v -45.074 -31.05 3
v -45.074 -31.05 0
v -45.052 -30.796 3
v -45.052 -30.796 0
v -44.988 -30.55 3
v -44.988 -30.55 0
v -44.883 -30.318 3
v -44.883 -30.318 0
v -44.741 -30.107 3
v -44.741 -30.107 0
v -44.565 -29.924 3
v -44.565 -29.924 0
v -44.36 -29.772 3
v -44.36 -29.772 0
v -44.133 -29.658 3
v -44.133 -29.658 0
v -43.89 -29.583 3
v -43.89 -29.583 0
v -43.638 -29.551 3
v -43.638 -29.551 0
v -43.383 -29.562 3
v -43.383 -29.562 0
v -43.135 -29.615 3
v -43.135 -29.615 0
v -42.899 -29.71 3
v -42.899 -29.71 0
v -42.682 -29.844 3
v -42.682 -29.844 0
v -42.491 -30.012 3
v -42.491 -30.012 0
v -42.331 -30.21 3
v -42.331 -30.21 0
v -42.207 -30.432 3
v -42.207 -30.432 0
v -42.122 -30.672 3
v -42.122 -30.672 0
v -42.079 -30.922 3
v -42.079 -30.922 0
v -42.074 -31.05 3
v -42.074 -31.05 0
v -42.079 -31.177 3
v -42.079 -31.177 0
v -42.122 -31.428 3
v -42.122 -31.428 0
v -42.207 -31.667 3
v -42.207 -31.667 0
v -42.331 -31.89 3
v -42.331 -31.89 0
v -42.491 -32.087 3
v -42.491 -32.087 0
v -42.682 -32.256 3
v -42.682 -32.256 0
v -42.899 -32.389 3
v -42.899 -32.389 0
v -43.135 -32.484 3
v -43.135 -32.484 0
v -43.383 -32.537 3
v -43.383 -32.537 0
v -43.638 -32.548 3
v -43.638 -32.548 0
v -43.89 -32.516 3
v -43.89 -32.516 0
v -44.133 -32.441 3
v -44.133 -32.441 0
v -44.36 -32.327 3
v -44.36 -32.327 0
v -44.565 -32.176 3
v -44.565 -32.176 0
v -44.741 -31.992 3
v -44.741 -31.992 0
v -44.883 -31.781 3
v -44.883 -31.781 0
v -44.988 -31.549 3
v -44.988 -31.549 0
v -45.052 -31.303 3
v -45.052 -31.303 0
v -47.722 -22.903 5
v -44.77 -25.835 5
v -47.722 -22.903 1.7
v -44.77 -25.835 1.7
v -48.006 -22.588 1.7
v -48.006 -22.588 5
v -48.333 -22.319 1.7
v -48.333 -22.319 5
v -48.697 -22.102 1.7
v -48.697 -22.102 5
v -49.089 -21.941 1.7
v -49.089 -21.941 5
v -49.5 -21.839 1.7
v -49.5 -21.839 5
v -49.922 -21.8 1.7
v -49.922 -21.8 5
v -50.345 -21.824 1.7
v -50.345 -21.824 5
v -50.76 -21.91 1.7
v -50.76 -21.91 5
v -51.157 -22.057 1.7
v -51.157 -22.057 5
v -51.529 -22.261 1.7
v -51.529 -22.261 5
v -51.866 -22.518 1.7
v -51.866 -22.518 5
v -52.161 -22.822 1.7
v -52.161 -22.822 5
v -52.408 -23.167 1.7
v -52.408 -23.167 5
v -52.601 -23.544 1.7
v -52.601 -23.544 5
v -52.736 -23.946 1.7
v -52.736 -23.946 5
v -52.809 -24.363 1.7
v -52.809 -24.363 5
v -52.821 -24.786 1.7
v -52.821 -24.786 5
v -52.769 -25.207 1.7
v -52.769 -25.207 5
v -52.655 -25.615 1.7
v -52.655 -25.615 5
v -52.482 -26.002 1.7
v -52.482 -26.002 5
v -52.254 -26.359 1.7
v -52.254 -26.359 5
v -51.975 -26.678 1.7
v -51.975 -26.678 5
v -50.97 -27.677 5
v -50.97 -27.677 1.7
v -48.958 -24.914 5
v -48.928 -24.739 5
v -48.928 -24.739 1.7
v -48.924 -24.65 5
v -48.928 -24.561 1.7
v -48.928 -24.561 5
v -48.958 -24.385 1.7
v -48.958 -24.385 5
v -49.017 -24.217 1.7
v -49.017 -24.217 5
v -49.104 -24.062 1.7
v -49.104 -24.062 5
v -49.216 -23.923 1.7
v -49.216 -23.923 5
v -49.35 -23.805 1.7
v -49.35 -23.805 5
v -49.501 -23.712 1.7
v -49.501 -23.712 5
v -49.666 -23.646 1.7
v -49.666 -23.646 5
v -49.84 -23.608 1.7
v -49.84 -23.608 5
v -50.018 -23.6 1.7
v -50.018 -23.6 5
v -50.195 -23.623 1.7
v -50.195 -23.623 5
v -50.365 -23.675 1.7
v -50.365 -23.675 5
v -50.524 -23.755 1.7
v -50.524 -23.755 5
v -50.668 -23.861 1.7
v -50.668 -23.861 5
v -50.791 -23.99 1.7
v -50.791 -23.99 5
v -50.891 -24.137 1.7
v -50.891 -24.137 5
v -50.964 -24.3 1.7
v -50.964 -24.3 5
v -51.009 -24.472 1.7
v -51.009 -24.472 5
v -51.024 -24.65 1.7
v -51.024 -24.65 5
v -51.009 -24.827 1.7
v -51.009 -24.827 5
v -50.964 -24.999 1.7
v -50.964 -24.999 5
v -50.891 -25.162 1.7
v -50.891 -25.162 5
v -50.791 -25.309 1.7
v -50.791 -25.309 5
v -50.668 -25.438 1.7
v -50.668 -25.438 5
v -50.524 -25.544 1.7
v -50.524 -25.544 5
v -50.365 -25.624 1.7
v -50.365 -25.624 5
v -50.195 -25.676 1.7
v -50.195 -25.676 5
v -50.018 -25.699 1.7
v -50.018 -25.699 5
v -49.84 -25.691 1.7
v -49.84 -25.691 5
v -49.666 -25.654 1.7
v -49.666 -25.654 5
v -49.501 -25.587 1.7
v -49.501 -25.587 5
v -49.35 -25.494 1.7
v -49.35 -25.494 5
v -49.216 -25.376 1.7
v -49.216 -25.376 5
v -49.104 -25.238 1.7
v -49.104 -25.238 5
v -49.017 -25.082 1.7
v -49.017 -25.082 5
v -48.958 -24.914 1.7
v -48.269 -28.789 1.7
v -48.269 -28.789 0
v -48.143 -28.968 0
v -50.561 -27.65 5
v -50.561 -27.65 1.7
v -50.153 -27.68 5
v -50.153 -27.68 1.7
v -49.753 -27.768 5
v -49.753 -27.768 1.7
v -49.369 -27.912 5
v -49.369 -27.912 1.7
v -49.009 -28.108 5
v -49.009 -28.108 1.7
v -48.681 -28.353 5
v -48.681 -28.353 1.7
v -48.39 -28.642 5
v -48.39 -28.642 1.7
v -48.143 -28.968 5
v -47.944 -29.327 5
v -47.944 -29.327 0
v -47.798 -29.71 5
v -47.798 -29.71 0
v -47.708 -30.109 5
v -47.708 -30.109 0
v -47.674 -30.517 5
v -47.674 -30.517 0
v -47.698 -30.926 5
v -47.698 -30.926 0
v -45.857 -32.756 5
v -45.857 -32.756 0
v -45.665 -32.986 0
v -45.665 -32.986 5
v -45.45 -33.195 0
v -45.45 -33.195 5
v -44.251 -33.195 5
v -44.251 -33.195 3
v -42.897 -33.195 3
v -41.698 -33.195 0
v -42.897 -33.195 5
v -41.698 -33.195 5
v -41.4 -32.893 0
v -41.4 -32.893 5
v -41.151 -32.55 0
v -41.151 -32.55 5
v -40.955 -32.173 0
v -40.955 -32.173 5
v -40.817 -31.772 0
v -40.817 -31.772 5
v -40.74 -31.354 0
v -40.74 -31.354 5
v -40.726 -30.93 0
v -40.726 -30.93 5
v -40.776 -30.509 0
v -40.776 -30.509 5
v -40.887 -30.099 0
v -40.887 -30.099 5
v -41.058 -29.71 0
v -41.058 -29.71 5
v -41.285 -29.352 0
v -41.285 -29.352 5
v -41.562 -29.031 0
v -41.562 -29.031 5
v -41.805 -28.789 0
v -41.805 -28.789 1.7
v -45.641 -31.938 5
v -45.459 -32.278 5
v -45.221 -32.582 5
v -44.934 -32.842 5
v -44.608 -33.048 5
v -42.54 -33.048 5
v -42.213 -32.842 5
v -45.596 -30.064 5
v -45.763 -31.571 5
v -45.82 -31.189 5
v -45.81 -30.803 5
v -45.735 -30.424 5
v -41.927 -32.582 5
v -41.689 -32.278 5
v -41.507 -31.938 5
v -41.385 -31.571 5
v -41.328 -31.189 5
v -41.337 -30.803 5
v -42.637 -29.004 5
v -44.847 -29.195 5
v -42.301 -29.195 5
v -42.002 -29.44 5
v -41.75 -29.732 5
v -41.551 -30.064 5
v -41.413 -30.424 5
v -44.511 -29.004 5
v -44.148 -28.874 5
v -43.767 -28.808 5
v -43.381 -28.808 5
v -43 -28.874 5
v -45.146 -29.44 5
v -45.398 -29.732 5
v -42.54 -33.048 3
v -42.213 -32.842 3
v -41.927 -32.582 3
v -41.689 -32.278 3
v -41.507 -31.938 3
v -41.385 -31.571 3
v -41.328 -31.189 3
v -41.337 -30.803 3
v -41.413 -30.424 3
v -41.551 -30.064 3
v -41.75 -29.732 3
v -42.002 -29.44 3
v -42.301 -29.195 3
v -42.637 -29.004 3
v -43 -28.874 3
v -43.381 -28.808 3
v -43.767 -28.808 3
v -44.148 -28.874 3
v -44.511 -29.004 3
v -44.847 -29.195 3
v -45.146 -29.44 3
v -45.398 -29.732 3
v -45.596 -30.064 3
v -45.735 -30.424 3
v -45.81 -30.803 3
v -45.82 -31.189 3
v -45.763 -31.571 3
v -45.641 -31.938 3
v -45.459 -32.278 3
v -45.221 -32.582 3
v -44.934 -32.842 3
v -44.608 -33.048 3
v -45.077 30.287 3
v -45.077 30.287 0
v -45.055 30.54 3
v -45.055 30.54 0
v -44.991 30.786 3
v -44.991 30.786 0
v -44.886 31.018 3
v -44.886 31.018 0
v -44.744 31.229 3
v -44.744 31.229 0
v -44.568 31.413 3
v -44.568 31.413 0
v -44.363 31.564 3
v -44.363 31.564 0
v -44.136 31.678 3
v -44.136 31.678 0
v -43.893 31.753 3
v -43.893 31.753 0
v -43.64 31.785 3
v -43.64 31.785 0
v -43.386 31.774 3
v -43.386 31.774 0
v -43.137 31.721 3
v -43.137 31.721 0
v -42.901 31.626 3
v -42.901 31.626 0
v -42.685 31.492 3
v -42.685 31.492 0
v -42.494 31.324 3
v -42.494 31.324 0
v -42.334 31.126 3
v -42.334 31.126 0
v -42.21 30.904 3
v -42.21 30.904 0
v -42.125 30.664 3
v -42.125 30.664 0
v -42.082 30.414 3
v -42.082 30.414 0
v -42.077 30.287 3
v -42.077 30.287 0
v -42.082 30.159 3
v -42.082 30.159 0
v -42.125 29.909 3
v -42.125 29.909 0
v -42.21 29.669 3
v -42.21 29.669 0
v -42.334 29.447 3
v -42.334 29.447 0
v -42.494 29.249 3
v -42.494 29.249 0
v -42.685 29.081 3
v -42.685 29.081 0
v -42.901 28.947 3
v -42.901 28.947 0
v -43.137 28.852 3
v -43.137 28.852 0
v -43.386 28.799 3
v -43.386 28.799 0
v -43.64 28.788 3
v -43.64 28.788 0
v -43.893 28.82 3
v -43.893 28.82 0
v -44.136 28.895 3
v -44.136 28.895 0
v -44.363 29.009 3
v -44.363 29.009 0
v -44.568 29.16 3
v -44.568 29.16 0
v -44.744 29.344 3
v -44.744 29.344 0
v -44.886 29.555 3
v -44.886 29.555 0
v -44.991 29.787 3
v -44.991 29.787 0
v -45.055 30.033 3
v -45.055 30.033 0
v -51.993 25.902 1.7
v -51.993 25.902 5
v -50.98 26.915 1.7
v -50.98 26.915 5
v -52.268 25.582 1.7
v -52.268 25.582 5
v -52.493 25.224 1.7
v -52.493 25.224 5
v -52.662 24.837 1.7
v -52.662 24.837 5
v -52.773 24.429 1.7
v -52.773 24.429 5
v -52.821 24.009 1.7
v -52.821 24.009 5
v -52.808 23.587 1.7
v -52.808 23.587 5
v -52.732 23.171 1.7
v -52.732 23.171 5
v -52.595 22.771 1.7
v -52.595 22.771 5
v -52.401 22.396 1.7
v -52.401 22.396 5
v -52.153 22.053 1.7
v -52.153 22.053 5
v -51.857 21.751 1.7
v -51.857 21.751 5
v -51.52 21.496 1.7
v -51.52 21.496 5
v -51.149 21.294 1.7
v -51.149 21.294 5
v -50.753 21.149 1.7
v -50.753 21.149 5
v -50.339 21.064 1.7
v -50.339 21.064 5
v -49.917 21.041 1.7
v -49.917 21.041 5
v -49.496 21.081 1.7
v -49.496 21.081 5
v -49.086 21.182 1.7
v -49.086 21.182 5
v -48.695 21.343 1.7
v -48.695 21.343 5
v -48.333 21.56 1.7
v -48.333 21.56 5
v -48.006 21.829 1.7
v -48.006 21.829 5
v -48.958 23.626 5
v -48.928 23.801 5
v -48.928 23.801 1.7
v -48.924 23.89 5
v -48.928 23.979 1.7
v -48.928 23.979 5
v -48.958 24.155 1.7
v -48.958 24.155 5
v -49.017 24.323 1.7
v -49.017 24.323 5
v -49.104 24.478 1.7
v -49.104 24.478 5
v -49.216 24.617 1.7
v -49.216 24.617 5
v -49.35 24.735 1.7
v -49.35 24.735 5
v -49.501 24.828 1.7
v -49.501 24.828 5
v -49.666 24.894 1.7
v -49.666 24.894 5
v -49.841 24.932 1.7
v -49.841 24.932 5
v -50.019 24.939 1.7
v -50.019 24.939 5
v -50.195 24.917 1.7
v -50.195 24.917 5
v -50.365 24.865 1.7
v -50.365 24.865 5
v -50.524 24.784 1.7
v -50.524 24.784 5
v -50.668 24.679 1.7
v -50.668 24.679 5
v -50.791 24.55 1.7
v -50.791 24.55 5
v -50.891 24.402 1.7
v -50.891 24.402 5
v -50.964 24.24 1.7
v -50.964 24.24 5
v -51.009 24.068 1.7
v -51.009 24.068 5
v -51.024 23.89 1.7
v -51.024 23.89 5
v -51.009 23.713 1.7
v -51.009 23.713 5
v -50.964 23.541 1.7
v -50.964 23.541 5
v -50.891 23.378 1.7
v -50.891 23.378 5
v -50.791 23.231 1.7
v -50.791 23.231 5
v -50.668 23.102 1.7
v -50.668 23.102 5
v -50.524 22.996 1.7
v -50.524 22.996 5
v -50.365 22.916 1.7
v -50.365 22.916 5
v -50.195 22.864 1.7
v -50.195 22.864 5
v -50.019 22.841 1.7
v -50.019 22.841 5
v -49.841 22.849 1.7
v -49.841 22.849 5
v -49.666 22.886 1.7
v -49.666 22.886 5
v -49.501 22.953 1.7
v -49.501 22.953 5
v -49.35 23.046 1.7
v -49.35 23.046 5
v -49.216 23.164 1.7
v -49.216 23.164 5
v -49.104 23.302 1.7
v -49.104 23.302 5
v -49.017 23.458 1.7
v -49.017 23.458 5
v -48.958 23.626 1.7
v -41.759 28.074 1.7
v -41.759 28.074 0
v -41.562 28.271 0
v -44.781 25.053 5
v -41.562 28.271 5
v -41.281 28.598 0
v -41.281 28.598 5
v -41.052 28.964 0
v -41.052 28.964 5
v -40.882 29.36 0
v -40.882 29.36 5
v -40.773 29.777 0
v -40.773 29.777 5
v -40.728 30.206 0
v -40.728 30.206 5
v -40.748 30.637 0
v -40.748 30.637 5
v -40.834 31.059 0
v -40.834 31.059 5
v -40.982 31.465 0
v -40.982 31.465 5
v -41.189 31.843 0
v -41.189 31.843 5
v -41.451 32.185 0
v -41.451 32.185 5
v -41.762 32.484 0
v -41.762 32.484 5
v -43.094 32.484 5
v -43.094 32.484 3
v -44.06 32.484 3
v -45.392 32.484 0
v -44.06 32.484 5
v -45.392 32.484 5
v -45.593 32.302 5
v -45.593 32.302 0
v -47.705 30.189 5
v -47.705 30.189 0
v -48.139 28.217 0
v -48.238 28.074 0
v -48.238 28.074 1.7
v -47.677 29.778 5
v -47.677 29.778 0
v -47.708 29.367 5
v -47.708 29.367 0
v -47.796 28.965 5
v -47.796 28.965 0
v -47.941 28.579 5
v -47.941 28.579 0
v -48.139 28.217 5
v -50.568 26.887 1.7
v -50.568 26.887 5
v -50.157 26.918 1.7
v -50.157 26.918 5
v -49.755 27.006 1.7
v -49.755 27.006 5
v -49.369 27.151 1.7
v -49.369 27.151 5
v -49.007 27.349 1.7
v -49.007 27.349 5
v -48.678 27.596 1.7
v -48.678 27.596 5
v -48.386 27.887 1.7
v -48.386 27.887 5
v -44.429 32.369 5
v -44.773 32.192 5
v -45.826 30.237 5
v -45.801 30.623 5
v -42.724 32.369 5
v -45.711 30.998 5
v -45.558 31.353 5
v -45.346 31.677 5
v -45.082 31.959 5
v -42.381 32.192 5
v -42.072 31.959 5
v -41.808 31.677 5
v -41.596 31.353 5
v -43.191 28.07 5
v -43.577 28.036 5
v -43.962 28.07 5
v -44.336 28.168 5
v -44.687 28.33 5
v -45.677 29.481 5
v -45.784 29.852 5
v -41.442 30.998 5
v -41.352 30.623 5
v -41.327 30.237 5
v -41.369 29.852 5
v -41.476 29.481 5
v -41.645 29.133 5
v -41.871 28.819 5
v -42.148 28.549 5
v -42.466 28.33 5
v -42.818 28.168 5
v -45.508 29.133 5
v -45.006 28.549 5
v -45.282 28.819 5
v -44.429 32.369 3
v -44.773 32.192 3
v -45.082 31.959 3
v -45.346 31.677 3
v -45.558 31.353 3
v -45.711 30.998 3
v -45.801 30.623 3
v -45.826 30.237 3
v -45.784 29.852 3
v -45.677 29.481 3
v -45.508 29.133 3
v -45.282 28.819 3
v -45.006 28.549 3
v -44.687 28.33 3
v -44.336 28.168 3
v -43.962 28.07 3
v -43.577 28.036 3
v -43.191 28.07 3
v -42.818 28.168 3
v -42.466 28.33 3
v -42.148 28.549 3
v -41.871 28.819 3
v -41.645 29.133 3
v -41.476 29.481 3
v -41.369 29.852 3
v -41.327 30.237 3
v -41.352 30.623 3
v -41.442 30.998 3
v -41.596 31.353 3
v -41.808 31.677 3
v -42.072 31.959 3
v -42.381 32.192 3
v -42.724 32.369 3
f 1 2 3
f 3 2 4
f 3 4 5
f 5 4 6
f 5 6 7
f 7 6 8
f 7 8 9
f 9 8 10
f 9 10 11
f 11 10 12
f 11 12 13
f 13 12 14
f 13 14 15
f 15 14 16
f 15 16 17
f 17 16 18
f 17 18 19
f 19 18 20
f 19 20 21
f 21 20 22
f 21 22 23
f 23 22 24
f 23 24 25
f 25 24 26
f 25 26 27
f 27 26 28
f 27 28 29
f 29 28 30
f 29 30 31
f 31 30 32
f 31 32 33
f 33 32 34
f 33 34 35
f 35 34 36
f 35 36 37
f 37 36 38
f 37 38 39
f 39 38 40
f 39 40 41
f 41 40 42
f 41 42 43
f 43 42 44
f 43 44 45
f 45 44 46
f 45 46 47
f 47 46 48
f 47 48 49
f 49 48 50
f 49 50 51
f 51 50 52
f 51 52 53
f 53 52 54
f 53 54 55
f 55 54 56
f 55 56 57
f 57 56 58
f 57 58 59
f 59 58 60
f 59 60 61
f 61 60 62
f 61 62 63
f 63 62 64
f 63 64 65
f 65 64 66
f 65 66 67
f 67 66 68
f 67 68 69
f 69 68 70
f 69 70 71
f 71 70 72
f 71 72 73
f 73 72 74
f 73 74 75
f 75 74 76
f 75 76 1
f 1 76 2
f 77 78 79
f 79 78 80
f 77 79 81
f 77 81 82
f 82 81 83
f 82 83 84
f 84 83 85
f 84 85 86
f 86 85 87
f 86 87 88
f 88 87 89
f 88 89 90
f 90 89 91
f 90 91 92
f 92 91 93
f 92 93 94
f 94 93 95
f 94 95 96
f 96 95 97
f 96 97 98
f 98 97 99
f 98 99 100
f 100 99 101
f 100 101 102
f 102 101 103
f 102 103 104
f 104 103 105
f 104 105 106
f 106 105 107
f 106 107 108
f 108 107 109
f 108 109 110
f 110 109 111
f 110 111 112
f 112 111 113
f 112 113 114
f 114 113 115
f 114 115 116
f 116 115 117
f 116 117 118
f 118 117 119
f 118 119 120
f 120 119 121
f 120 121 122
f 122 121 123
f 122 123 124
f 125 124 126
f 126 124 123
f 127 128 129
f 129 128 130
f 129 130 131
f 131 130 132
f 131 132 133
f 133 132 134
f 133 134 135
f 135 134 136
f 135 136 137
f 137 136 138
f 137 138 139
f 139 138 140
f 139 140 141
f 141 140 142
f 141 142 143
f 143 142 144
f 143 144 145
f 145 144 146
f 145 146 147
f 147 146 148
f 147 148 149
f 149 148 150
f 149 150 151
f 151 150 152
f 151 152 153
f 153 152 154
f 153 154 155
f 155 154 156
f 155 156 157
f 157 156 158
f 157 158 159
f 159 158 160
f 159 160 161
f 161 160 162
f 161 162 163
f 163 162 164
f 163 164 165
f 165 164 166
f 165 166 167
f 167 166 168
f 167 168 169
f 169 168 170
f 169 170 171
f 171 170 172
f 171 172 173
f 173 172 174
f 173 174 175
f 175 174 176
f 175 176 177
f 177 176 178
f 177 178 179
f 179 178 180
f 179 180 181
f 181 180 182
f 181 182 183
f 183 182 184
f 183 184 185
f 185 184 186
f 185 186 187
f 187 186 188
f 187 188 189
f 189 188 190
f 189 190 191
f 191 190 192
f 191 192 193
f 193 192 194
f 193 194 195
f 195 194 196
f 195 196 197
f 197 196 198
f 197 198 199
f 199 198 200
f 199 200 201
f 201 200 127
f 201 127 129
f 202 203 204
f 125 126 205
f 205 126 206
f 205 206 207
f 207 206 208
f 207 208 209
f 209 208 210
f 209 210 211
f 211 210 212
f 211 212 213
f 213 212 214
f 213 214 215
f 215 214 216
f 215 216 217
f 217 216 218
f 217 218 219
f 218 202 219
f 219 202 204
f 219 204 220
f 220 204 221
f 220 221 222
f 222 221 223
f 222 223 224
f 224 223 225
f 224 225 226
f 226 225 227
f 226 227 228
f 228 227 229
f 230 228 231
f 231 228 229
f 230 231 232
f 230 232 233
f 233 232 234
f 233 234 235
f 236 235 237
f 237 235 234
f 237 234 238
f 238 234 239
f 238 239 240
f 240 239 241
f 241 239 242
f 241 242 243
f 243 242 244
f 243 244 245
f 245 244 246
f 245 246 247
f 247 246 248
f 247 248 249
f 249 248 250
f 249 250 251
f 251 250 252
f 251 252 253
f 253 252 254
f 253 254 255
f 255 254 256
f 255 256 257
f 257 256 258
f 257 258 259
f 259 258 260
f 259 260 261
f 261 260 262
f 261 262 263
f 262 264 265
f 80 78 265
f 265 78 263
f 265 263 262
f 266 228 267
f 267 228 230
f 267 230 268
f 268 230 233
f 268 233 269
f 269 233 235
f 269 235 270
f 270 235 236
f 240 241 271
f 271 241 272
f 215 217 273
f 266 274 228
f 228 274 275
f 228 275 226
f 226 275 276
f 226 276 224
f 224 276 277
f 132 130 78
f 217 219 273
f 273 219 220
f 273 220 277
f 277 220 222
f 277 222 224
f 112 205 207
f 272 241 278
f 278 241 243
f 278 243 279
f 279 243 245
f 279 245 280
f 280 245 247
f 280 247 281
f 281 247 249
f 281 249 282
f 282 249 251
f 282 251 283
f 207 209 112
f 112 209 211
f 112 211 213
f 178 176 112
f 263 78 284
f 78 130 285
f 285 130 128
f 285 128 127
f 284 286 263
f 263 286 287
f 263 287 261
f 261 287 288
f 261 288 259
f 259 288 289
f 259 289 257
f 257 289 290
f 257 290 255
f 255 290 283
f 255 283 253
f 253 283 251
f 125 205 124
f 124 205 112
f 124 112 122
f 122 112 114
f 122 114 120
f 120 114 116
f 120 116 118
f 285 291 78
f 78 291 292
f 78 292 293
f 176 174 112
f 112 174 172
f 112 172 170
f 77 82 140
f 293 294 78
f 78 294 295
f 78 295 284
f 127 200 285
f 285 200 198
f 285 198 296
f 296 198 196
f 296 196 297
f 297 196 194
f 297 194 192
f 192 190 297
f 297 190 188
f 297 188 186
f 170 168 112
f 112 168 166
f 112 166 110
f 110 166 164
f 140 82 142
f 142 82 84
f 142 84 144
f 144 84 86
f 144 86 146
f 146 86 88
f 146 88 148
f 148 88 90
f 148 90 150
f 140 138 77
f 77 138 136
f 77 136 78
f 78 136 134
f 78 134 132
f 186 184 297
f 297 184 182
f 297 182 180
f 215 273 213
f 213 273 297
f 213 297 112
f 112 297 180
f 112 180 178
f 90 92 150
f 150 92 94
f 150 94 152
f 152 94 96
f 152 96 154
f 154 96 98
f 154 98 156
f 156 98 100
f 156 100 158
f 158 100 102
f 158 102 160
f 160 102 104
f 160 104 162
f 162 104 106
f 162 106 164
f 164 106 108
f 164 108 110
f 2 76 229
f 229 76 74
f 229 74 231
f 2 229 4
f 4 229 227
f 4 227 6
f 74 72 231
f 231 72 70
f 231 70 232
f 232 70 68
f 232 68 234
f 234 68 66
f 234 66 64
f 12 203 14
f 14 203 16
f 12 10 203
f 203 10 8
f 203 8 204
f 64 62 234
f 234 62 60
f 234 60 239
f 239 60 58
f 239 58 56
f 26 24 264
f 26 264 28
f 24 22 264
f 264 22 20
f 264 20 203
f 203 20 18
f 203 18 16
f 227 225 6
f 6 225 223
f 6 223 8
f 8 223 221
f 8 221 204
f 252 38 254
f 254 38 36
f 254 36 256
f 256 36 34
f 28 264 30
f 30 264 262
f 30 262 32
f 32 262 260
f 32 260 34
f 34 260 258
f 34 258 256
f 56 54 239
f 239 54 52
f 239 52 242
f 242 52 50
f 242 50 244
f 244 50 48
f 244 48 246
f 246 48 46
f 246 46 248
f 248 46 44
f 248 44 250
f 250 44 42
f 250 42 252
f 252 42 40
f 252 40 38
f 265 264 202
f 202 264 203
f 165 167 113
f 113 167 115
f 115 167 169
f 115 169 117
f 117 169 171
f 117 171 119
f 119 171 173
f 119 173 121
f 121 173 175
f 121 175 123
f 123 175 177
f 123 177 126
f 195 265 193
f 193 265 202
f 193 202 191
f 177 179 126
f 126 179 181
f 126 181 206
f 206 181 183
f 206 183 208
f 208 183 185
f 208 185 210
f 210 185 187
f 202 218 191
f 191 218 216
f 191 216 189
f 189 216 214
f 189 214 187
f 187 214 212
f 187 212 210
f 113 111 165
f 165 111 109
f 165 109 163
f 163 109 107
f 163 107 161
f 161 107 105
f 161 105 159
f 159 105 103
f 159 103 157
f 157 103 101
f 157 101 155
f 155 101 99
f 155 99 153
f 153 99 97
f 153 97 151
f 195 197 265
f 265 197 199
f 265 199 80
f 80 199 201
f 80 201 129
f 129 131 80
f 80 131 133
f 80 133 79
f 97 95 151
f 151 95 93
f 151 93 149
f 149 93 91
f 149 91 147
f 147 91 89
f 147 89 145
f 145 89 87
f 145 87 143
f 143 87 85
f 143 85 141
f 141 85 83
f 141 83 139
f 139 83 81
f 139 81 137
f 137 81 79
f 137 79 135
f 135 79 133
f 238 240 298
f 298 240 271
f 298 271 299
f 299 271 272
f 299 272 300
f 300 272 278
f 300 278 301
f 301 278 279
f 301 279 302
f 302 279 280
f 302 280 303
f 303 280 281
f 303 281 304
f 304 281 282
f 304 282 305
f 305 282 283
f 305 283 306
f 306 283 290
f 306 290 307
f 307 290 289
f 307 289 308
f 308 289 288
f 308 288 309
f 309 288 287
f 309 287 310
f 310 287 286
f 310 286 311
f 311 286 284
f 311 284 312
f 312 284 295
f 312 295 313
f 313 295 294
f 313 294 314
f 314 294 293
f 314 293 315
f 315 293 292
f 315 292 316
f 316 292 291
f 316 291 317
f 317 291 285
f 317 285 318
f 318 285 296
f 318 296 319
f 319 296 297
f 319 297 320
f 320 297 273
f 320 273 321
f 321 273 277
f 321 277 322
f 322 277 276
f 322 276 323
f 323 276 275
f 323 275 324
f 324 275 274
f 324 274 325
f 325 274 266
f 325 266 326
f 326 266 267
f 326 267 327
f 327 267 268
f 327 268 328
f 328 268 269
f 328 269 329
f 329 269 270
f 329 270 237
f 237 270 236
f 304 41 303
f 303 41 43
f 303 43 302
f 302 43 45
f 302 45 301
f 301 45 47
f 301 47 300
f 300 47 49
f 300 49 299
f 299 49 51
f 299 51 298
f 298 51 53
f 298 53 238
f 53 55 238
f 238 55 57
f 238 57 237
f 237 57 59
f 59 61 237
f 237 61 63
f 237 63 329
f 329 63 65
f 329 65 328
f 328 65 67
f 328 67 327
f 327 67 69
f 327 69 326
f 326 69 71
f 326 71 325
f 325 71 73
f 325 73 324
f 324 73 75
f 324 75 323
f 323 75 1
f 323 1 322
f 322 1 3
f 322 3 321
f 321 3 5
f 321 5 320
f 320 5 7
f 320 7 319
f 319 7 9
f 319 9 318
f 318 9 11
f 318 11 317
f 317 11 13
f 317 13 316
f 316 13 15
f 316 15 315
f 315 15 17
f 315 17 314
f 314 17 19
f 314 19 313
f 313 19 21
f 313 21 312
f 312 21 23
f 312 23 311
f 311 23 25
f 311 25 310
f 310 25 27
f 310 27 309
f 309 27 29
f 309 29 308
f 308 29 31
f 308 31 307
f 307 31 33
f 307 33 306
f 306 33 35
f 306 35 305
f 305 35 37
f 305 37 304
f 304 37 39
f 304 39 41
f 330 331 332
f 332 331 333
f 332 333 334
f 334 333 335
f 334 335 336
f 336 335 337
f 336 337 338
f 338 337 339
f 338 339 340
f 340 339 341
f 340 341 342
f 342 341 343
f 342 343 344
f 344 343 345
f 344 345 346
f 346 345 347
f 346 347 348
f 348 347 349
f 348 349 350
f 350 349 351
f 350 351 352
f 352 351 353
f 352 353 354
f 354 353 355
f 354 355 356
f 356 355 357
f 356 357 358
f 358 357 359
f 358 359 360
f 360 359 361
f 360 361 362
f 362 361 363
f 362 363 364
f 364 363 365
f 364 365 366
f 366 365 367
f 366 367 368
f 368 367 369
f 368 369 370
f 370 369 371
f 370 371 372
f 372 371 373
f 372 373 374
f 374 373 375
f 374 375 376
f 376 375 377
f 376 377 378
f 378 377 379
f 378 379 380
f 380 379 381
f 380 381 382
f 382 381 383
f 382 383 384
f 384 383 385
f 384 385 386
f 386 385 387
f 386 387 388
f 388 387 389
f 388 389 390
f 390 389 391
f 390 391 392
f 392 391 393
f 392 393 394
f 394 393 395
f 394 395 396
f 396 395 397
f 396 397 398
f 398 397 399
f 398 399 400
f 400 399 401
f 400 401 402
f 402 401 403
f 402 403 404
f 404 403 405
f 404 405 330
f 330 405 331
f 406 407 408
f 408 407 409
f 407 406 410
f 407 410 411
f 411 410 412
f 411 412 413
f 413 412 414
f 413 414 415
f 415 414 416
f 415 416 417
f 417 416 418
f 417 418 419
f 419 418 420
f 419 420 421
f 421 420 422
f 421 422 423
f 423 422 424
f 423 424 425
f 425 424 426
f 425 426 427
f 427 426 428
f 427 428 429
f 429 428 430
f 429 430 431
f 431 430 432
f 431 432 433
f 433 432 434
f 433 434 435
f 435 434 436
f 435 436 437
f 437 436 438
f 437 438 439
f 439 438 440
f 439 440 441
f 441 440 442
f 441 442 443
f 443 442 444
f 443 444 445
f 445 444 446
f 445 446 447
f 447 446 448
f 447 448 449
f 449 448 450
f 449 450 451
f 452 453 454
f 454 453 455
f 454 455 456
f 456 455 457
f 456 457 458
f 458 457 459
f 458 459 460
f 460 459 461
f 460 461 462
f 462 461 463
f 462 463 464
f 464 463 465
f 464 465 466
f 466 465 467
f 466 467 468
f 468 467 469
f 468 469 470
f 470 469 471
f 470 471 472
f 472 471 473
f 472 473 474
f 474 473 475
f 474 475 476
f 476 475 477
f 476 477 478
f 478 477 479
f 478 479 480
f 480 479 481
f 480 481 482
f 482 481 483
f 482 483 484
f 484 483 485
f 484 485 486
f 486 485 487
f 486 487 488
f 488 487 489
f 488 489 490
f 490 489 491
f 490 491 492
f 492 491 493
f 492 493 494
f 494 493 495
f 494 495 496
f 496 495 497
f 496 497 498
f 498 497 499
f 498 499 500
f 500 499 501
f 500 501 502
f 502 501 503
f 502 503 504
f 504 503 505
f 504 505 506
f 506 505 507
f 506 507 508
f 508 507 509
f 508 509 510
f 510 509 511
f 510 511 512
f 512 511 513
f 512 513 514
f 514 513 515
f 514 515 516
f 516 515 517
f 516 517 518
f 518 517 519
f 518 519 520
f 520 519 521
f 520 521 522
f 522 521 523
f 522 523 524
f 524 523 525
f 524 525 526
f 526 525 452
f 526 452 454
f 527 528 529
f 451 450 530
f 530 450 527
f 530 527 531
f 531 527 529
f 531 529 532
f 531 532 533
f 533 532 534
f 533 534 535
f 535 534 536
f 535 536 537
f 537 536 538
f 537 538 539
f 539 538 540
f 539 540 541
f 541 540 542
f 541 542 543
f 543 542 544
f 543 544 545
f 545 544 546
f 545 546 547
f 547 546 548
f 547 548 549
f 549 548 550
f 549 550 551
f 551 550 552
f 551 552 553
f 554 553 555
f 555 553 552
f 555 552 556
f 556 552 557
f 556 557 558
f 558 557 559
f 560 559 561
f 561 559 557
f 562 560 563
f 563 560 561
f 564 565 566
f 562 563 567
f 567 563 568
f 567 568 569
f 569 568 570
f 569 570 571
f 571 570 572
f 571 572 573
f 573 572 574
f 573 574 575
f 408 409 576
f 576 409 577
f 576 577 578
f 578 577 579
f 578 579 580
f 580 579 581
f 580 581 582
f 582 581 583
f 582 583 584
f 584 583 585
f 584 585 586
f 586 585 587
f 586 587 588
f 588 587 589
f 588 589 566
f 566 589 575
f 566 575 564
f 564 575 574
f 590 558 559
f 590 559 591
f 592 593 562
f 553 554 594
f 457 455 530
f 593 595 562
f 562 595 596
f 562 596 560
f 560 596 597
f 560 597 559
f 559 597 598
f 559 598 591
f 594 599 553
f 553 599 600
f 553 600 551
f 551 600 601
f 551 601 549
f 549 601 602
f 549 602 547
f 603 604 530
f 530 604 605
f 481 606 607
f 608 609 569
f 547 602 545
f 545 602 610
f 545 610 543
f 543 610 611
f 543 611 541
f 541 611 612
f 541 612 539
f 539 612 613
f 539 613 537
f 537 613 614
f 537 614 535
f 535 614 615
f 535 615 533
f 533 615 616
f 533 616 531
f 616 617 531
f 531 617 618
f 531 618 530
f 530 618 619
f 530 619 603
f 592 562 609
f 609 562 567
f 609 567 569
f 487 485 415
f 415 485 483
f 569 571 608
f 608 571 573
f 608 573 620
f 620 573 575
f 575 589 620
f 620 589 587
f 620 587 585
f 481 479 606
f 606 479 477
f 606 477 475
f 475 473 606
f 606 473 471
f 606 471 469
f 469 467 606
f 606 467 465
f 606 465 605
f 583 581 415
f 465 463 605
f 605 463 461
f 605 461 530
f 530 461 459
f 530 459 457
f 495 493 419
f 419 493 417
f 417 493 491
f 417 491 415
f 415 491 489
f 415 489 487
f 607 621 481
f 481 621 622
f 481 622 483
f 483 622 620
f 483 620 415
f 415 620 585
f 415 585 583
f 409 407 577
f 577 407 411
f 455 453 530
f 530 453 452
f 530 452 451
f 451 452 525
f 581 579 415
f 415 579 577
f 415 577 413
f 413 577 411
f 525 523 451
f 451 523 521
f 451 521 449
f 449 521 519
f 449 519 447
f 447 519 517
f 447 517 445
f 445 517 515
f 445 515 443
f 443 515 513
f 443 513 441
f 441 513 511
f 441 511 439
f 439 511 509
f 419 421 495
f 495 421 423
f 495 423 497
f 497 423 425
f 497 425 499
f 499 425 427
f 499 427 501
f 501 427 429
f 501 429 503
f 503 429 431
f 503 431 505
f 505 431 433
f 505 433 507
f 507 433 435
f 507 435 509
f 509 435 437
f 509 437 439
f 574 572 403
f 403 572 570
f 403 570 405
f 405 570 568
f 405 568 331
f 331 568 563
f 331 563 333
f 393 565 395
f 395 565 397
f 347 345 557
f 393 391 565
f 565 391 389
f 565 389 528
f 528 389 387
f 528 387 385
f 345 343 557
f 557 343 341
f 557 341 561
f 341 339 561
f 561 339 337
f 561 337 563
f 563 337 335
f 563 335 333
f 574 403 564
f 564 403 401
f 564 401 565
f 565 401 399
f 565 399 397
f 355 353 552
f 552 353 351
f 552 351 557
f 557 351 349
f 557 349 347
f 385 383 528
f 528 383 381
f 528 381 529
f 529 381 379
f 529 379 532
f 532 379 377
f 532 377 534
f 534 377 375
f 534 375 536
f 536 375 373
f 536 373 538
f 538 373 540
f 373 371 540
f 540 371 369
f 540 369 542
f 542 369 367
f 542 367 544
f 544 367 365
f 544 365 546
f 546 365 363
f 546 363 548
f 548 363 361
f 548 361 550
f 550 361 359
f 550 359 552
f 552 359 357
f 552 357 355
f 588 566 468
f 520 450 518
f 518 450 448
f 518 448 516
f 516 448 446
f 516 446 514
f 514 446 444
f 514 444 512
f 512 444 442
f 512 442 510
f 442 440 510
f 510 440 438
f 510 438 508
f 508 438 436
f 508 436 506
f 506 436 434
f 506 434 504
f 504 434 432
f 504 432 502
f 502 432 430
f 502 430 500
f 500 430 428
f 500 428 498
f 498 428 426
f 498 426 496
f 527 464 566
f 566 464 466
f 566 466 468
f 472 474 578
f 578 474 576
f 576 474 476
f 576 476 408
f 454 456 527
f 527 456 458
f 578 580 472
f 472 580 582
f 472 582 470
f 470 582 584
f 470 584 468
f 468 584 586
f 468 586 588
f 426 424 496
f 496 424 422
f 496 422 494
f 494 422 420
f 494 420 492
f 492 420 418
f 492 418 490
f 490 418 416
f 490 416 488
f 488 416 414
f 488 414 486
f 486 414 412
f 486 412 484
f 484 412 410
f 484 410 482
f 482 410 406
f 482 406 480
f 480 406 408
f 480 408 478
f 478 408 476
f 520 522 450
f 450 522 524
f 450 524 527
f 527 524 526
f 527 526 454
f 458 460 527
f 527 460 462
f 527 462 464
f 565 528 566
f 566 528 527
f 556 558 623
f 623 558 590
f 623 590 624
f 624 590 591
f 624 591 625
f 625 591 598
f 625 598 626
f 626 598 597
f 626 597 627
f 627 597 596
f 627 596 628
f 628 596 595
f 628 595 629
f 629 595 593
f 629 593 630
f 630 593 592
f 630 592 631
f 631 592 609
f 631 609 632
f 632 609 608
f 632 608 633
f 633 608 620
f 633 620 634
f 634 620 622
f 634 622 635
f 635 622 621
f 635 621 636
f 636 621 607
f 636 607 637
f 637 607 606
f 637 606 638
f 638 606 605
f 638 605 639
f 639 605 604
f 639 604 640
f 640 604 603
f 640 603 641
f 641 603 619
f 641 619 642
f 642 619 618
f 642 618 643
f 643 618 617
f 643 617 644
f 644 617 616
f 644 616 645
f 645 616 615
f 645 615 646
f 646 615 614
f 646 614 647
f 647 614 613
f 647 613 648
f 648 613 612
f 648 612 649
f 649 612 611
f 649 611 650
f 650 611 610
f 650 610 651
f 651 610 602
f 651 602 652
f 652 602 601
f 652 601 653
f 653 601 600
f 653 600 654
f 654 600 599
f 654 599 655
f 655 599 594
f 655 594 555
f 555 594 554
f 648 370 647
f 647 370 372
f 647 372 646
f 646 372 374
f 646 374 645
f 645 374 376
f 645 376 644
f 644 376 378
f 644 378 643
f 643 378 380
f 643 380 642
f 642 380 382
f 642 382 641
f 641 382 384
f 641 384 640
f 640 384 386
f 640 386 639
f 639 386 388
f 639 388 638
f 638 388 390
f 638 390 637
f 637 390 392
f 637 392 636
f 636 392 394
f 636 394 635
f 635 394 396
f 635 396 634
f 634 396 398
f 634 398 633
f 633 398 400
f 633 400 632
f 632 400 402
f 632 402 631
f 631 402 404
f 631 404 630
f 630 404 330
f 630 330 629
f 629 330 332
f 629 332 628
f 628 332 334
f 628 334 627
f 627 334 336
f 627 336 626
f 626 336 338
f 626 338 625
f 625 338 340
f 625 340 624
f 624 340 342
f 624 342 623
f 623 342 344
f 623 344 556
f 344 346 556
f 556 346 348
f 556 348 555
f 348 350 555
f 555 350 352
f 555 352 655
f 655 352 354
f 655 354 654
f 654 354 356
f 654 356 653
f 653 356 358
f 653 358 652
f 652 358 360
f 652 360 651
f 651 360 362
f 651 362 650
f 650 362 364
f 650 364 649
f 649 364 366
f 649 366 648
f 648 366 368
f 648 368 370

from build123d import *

# Parameters (mm, degrees)
SKIZZE8_R                       = 1.5
SKIZZE8_R_2                     = 1.05
AUFSATZ_LINEAR_AUSTRAGEN2_DEPTH = 5
SKIZZE10_W                      = 20.065556473
SKIZZE10_H                      = 56.862731781
SCHNITT_LINEAR_AUSTRAGEN6_DEPTH = 1.7
SKIZZE11_R                      = 2.25
SCHNITT_LINEAR_AUSTRAGEN7_DEPTH = 2


with BuildPart() as part:
    # Skizze8 → Aufsatz-Linear austragen2 (new body)
    # profile 1 of 4: a face of its own
    with BuildSketch(Plane.XY):
        with BuildLine():
            ThreePointArc((-47.123867598, -24.649552882), (-48.874309678, -27.278901163), (-51.975427164, -26.678409532))
            Line((-51.975427164, -26.678409532), (-50.970278136, -27.676773969))
            ThreePointArc((-50.970278136, -27.676773969), (-48.530213724, -28.49201094), (-47.698469834, -30.926498104))
            Line((-47.698469834, -30.926498104), (-45.856507051, -32.756027941))
            ThreePointArc((-45.856507051, -32.756027941), (-45.664613255, -32.986375692), (-45.449583337, -33.195290626))
            Line((-45.449583337, -33.195290626), (-41.698151858, -33.195290626))
            ThreePointArc((-41.698151858, -33.195290626), (-40.725381252, -31.142426674), (-41.562362318, -29.03055647))
            Line((-41.562362318, -29.03055647), (-44.770198206, -25.834622697))
            Line((-44.770198206, -25.834622697), (-47.721753605, -22.902989811))
            ThreePointArc((-47.721753605, -22.902989811), (-47.27747882, -23.72652116), (-47.123867598, -24.649552882))
        make_face()
        with Locations((-43.573867598, -31.049552882)):
            Circle(SKIZZE8_R, mode=Mode.SUBTRACT)
    # profile 2 of 4: a face of its own
    with BuildSketch(Plane.XY):
        with BuildLine():
            ThreePointArc((-52.823867598, -24.649552882), (-52.603215878, -25.749110802), (-51.975427164, -26.678409532))
            ThreePointArc((-51.975427164, -26.678409532), (-48.874309678, -27.278901163), (-47.123867598, -24.649552882))
            ThreePointArc((-47.123867598, -24.649552882), (-47.27747882, -23.72652116), (-47.721753605, -22.902989811))
            ThreePointArc((-47.721753605, -22.902989811), (-50.89689932, -21.953164105), (-52.823867598, -24.649552882))
        make_face()
        with Locations((-49.973867598, -24.649552882)):
            Circle(SKIZZE8_R_2, mode=Mode.SUBTRACT)
    # profile 3 of 4: a face of its own
    with BuildSketch(Plane.XY):
        with BuildLine():
            Line((-50.979721106, 26.915100263), (-51.992527433, 25.902293935))
            ThreePointArc((-51.992527433, 25.902293935), (-48.885473472, 26.524330713), (-47.123944687, 23.890373535))
            ThreePointArc((-47.123944687, 23.890373535), (-47.328564647, 22.829965856), (-47.913042545, 21.921825248))
            Line((-47.913042545, 21.921825248), (-44.780724925, 25.053084596))
            Line((-44.780724925, 25.053084596), (-41.561819772, 28.270907976))
            ThreePointArc((-41.561819772, 28.270907976), (-40.729945685, 30.421733289), (-41.761957084, 32.48401758))
            Line((-41.761957084, 32.48401758), (-45.391504037, 32.48401758))
            Line((-45.391504037, 32.48401758), (-45.592527433, 32.302293935))
            Line((-45.592527433, 32.302293935), (-47.705333761, 30.189487608))
            ThreePointArc((-47.705333761, 30.189487608), (-48.526663441, 27.736429944), (-50.979721106, 26.915100263))
        make_face()
        with Locations((-43.576729265, 30.286498448)):
            Circle(SKIZZE8_R, mode=Mode.SUBTRACT)
    # profile 4 of 4: a face of its own
    with BuildSketch(Plane.XY):
        with BuildLine():
            ThreePointArc((-47.123944687, 23.890373535), (-48.885473472, 26.524330713), (-51.992527433, 25.902293935))
            ThreePointArc((-51.992527433, 25.902293935), (-52.607901865, 24.978844751), (-52.823944687, 23.890373535))
            ThreePointArc((-52.823944687, 23.890373535), (-51.095132106, 21.270175304), (-48.006092917, 21.828806313))
            Line((-48.006092917, 21.828806313), (-47.913042545, 21.921825248))
            ThreePointArc((-47.913042545, 21.921825248), (-47.328564647, 22.829965856), (-47.123944687, 23.890373535))
        make_face()
        with Locations((-49.973944687, 23.890373535)):
            Circle(SKIZZE8_R_2, mode=Mode.SUBTRACT)
    extrude(amount=AUFSATZ_LINEAR_AUSTRAGEN2_DEPTH)

    # Skizze10 → Schnitt-Linear austragen6 (cut)
    with BuildSketch(Plane(origin=(0, 0, 0), x_dir=(-1, 0, 0), z_dir=(0, 0, -1))):
        with Locations((47.275807156, -0.357800275)):
            Rectangle(SKIZZE10_W, SKIZZE10_H)
    extrude(amount=-SCHNITT_LINEAR_AUSTRAGEN6_DEPTH, mode=Mode.SUBTRACT)

    # Skizze11 → Schnitt-Linear austragen7 (cut)
    with BuildSketch(Plane.XY.offset(5)):
        with Locations((-43.576729265, 30.286498448)):
            Circle(SKIZZE11_R)
        with Locations((-43.573867598, -31.049552882)):
            Circle(SKIZZE11_R)
    extrude(amount=-SCHNITT_LINEAR_AUSTRAGEN7_DEPTH, mode=Mode.SUBTRACT)


solid = part.part
